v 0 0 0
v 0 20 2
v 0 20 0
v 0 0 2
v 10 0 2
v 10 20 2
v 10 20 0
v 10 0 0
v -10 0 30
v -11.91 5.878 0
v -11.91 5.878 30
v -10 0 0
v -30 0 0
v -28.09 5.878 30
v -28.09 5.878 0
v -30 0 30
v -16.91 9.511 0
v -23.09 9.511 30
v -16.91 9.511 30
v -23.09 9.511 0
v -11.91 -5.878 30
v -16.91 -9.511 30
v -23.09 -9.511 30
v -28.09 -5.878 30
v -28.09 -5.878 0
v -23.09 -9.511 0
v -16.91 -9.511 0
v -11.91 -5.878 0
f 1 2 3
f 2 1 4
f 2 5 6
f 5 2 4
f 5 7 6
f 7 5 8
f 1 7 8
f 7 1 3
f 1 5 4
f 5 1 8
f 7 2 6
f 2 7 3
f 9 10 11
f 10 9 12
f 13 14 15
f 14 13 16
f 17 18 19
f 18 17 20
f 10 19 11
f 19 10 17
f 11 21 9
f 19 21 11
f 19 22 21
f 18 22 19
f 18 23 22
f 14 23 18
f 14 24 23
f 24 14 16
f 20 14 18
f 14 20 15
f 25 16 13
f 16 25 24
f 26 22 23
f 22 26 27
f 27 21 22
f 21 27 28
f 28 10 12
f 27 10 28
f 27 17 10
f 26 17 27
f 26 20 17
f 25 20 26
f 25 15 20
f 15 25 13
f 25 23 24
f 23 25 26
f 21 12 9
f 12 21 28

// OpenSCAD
cube([10,20,2]);
translate([-20,0])
    cylinder(r=10,30,$fn=10);
